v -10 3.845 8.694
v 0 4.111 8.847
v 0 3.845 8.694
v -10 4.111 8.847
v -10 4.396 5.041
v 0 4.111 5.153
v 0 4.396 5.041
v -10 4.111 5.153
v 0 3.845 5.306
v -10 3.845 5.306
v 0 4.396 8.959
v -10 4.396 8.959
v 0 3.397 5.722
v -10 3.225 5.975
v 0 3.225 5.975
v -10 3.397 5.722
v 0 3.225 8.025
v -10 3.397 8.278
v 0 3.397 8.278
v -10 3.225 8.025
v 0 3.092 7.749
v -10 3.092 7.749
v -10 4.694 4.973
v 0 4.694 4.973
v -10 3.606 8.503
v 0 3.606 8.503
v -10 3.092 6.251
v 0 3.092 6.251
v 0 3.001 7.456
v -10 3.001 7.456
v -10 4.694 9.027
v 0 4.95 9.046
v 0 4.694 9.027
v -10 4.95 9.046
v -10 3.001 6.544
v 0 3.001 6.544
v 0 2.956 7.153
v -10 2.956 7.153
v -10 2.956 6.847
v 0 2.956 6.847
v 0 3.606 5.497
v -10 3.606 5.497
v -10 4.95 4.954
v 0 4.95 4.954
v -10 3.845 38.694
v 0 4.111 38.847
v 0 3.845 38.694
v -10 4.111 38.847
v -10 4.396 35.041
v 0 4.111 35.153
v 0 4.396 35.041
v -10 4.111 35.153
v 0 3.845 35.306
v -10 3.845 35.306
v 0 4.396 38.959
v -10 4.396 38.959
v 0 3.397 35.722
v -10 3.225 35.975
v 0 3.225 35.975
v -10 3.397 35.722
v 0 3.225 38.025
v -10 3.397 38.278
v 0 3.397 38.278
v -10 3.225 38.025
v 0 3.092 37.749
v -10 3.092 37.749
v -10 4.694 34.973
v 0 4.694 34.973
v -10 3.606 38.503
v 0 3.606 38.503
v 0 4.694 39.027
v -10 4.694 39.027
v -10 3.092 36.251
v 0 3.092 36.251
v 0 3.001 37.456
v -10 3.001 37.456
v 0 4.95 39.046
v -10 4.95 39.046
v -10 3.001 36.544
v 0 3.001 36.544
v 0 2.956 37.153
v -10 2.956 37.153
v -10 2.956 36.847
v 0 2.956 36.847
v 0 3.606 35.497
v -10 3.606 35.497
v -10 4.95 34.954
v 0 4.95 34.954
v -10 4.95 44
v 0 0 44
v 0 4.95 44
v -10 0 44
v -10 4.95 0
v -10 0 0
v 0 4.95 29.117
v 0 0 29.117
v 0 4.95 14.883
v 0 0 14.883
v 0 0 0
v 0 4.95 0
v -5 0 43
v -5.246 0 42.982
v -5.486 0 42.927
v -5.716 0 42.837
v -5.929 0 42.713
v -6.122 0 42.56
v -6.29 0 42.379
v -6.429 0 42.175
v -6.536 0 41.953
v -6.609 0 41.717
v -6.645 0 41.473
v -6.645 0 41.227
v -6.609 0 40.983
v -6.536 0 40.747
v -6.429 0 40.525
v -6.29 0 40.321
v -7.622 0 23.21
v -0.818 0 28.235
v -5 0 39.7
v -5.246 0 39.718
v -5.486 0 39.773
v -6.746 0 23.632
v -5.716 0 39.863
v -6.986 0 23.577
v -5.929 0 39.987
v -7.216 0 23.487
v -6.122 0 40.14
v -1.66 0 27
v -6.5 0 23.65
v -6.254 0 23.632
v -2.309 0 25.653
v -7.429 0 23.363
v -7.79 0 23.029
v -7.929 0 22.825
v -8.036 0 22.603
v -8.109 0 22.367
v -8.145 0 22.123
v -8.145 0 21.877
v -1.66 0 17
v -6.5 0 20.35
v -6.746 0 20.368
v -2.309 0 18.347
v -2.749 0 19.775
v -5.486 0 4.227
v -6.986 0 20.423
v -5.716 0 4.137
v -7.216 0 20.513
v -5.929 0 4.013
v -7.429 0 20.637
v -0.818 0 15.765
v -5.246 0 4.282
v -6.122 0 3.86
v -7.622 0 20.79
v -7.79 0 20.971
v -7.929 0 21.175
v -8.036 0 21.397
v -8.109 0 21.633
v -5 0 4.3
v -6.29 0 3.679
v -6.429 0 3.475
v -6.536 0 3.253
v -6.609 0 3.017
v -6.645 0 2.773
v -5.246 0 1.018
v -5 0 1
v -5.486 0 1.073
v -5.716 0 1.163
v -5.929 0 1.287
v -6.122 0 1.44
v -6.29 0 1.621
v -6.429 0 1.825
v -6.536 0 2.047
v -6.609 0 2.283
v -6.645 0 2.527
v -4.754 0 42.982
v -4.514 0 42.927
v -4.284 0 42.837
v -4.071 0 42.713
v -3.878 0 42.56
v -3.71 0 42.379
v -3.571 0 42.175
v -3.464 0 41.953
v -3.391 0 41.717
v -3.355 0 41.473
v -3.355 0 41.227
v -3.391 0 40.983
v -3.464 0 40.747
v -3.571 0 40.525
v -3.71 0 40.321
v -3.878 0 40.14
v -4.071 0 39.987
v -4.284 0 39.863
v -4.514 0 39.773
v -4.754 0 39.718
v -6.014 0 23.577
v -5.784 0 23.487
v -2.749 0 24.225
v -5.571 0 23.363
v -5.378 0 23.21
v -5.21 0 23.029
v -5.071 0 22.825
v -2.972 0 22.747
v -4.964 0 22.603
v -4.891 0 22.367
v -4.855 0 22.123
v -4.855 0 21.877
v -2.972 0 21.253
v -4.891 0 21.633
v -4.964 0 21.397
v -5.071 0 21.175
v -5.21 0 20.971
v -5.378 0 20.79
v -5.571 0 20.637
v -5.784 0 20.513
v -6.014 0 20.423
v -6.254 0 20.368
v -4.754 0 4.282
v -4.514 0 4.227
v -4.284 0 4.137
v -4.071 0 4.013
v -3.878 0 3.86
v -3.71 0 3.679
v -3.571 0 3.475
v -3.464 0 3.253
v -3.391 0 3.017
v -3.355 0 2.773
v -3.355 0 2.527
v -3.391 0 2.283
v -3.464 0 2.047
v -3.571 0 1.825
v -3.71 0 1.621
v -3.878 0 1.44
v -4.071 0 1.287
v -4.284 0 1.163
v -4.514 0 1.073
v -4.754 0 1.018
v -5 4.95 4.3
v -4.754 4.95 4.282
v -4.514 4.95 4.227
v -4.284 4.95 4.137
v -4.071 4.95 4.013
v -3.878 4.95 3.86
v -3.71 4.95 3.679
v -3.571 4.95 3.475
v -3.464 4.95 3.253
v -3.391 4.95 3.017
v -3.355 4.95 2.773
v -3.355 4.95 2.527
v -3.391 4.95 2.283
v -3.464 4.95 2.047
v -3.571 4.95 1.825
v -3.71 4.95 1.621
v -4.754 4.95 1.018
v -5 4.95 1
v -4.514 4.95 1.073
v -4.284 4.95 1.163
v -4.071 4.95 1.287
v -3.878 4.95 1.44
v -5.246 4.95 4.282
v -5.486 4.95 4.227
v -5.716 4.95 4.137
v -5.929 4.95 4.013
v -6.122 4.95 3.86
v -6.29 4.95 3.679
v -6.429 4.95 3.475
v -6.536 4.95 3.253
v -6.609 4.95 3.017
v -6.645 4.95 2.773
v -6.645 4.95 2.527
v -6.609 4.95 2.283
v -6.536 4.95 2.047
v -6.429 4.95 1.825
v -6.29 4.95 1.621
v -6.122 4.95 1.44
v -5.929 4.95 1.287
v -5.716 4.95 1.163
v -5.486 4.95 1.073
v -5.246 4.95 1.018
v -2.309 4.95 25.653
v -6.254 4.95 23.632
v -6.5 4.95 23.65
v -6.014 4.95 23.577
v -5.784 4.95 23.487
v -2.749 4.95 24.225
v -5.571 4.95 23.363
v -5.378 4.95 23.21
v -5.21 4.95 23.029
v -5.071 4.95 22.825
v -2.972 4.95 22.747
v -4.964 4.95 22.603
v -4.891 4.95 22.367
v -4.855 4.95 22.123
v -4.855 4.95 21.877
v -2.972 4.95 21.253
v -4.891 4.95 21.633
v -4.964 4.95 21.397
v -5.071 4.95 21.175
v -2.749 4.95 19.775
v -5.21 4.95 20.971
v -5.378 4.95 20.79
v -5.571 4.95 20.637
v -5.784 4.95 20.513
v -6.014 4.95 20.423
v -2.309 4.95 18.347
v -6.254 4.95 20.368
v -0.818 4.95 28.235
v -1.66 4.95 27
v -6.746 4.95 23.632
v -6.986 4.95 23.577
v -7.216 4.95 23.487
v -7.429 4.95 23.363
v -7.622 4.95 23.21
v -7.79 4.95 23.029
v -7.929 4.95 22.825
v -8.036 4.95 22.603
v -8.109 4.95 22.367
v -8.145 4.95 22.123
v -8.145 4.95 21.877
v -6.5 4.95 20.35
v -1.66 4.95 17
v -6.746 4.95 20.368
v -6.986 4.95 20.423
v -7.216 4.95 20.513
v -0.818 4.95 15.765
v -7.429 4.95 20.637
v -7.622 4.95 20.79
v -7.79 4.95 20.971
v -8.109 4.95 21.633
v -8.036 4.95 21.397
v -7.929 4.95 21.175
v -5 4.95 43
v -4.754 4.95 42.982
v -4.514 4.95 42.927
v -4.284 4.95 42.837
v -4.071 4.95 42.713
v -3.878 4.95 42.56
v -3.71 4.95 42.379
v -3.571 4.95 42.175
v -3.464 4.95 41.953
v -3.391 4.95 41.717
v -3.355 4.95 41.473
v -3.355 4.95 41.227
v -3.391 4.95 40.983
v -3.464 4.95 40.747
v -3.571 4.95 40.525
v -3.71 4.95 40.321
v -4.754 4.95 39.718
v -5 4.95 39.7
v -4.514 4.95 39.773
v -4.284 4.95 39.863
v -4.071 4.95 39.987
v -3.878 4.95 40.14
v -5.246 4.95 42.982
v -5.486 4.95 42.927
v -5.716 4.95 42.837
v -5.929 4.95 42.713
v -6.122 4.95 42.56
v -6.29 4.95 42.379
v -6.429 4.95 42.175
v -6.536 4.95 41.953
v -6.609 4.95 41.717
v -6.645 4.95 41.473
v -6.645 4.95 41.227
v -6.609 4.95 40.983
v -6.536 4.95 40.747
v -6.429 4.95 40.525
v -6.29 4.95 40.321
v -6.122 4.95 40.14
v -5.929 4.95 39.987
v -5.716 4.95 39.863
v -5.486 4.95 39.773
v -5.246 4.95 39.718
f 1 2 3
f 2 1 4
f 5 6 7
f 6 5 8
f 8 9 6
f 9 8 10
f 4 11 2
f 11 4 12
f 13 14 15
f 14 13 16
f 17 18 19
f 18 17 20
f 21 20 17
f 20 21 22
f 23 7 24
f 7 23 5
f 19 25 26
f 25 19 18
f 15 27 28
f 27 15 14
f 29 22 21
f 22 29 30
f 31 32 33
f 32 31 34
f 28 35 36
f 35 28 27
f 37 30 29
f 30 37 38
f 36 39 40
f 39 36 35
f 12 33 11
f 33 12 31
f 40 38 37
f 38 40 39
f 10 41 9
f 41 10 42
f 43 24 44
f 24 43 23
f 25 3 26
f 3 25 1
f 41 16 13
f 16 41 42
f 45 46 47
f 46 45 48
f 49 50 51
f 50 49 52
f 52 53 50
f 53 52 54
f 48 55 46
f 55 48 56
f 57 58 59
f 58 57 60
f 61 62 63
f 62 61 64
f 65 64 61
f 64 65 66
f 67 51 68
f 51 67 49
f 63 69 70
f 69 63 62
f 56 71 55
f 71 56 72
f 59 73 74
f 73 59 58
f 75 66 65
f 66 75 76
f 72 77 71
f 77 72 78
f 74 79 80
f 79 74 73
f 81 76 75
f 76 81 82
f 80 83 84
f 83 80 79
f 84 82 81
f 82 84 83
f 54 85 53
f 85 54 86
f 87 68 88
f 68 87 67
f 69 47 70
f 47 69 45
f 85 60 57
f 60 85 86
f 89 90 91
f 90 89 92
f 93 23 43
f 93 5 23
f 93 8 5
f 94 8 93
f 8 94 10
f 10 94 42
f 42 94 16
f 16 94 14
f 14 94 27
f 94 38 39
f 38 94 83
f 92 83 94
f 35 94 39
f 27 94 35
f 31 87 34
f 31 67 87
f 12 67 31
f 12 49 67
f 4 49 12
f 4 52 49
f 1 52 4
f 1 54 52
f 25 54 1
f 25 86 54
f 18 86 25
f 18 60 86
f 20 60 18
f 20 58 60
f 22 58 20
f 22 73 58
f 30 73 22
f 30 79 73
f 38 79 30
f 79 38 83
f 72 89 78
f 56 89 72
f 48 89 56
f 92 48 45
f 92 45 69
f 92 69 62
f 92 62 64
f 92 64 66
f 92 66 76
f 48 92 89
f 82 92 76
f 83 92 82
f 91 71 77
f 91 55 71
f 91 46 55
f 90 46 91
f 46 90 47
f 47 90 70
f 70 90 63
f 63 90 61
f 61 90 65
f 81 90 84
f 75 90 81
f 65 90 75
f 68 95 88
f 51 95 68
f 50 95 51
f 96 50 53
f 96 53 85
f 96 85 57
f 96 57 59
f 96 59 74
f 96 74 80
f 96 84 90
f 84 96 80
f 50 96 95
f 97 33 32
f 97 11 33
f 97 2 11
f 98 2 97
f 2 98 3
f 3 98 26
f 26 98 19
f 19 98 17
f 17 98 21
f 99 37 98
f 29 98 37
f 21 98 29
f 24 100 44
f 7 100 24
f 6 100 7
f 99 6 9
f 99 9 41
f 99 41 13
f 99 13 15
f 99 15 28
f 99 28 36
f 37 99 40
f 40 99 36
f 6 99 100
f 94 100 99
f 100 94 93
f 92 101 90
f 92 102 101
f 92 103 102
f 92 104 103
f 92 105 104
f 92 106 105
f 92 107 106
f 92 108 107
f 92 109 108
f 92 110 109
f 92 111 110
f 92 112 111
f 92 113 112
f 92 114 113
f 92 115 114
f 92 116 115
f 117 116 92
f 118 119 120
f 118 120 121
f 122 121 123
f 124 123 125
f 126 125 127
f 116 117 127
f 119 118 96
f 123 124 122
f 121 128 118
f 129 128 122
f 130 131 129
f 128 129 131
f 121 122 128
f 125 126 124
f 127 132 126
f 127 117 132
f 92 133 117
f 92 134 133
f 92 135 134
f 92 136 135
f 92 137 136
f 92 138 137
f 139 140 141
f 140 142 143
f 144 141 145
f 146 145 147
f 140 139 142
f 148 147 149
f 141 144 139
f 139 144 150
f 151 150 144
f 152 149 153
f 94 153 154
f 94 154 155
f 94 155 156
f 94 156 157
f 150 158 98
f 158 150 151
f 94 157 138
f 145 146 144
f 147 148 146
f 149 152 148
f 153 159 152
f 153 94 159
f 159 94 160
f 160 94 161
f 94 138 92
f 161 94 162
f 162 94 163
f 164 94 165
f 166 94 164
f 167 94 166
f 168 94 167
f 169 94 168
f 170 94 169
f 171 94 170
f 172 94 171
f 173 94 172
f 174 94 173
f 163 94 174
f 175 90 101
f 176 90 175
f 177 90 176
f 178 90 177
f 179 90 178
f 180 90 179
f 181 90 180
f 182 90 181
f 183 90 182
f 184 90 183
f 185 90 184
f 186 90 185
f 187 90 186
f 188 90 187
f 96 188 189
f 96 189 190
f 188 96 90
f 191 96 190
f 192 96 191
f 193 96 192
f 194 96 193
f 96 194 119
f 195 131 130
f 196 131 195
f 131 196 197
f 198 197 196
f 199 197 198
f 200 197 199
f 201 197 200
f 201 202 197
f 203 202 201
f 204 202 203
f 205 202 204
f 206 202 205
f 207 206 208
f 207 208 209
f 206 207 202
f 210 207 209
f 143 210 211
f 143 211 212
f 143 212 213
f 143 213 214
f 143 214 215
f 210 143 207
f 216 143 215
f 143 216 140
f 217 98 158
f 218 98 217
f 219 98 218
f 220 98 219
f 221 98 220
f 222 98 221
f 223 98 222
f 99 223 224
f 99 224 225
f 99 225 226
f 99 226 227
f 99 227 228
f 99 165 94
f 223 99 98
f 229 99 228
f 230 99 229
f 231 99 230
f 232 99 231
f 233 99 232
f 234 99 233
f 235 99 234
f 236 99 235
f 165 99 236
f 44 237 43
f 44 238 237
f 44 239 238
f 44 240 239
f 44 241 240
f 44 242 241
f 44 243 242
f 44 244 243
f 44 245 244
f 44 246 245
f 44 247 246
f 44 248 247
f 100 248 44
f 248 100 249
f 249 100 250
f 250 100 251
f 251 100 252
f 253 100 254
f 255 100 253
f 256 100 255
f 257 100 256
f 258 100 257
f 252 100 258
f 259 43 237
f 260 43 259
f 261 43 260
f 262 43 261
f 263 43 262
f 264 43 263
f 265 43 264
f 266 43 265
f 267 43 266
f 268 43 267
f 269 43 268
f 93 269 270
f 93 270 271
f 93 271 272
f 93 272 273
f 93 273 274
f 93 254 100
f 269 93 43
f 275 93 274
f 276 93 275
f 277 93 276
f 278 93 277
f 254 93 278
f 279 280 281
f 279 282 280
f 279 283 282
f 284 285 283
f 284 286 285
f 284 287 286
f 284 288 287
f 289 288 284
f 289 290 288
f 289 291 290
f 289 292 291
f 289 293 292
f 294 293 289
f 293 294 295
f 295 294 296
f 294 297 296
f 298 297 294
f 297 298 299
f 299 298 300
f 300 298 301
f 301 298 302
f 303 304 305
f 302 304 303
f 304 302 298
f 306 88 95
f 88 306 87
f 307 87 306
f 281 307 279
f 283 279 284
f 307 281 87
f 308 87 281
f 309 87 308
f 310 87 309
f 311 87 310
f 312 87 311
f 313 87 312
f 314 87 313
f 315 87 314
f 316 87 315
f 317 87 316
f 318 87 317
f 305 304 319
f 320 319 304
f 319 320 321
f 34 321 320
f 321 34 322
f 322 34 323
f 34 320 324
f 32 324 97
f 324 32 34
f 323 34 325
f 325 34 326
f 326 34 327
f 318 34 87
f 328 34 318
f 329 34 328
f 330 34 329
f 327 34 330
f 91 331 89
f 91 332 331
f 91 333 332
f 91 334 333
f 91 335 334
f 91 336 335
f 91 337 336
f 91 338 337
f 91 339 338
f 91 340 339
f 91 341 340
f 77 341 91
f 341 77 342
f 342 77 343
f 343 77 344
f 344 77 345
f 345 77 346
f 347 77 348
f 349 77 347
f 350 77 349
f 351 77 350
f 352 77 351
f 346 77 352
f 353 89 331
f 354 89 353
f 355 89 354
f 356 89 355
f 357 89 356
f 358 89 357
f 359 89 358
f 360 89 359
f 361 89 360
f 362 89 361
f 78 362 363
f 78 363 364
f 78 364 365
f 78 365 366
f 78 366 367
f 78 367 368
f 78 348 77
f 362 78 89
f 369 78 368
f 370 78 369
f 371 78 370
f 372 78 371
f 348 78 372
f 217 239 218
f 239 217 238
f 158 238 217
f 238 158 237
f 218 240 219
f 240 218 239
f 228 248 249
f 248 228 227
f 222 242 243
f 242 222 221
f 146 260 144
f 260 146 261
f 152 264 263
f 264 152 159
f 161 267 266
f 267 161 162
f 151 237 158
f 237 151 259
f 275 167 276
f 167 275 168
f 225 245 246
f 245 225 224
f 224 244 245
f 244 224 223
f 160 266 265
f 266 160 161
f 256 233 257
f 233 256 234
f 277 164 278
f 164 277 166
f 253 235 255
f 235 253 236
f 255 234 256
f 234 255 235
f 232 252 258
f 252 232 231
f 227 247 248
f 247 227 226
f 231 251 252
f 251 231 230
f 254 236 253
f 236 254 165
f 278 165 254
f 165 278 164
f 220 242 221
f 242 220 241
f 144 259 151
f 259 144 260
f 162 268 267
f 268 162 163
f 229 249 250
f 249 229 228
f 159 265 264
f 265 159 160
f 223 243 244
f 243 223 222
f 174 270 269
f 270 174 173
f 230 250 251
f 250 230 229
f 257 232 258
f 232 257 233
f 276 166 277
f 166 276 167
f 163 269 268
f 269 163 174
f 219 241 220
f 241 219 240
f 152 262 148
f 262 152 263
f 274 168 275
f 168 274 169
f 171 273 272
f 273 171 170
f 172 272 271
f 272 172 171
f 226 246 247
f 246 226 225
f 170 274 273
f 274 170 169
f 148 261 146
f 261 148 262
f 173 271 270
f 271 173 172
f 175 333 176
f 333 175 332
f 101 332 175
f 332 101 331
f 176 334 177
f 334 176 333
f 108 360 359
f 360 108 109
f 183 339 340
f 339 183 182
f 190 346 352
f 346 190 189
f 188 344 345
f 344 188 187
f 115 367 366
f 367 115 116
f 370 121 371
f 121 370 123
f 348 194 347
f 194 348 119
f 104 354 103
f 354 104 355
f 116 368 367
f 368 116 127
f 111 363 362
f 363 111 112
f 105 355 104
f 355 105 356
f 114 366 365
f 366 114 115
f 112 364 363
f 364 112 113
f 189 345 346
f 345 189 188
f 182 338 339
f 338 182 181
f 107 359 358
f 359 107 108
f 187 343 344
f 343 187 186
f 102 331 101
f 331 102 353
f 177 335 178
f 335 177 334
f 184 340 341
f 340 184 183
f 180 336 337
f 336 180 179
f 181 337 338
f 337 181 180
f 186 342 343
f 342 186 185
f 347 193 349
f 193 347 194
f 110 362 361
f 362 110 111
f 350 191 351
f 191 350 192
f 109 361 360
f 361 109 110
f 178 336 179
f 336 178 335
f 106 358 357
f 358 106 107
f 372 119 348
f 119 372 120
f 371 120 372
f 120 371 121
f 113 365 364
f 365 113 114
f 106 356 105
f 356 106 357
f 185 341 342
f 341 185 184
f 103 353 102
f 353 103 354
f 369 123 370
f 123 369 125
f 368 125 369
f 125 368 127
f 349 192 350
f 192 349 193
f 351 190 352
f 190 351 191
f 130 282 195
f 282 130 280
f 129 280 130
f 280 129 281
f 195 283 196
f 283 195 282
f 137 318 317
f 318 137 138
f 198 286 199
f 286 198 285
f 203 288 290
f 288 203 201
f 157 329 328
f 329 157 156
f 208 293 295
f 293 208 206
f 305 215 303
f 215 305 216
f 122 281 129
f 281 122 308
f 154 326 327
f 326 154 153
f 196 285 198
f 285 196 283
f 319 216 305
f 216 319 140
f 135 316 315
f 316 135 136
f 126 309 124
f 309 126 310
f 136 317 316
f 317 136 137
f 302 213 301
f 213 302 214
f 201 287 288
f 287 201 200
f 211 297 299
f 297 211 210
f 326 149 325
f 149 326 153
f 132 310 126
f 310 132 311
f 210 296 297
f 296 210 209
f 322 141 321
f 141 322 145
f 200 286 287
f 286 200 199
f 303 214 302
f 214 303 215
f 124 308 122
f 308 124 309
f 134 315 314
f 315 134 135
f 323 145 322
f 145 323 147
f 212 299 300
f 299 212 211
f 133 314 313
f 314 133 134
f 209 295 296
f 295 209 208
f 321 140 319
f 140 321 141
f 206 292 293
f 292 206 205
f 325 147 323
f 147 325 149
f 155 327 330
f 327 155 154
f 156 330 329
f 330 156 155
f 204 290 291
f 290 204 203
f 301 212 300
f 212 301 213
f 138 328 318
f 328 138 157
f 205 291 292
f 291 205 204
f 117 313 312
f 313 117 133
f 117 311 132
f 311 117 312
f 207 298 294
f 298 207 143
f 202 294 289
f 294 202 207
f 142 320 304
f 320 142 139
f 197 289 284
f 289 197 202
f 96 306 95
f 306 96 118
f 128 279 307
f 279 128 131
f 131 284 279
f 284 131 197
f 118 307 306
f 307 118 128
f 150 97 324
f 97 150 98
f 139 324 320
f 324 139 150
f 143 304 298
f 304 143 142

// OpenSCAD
hole_dia = 4.1;
hole_dist = 30.0;
height = 10.0;
depth = 10.0;
width = hole_dist + (2 * 7.0);
screw_dia = 3.3;
screw_off = (screw_dia / 2) + 1.0;
gap_dia = 20.0;
gap_height = 3.0;
cut = 0.1;

$fn = 42;

module holes() {
    cylinder(d = hole_dia, h = height + 2);
    
    translate([hole_dist, 0, 0])
    cylinder(d = hole_dia, h = height + 2);
}

module fix() {
    difference() {
        cube([width, depth, height]);
        
        translate([(width - hole_dist) / 2, depth / 2, -1])
        holes();
        
        translate([-1, (depth - cut) / 2, -1])
        cube([width + 2, cut, height + 2]);
        
        translate([screw_off, -1, height / 2])
        rotate([-90, 0, 0])
        cylinder(d = screw_dia, h = depth + 2);
        
        translate([width - screw_off, -1, height / 2])
        rotate([-90, 0, 0])
        cylinder(d = screw_dia, h = depth + 2);
        
        translate([width / 2, -1, (height + gap_height) / 2])
        rotate([-90, 0, 0])
        cylinder(d = screw_dia, h = depth + 2);
        
        translate([width / 2, -1, gap_height - gap_dia / 2])
        rotate([-90, 0, 0])
        cylinder(d = gap_dia, h = depth + 2);
    }
}

module print() {
    rotate([0, -90, 0])
    difference() {
        fix();
        
        translate([-1, (depth - cut) / 2, -1])
        cube([width + 2, depth, height + 2]);
    }
}

//fix();
print();
